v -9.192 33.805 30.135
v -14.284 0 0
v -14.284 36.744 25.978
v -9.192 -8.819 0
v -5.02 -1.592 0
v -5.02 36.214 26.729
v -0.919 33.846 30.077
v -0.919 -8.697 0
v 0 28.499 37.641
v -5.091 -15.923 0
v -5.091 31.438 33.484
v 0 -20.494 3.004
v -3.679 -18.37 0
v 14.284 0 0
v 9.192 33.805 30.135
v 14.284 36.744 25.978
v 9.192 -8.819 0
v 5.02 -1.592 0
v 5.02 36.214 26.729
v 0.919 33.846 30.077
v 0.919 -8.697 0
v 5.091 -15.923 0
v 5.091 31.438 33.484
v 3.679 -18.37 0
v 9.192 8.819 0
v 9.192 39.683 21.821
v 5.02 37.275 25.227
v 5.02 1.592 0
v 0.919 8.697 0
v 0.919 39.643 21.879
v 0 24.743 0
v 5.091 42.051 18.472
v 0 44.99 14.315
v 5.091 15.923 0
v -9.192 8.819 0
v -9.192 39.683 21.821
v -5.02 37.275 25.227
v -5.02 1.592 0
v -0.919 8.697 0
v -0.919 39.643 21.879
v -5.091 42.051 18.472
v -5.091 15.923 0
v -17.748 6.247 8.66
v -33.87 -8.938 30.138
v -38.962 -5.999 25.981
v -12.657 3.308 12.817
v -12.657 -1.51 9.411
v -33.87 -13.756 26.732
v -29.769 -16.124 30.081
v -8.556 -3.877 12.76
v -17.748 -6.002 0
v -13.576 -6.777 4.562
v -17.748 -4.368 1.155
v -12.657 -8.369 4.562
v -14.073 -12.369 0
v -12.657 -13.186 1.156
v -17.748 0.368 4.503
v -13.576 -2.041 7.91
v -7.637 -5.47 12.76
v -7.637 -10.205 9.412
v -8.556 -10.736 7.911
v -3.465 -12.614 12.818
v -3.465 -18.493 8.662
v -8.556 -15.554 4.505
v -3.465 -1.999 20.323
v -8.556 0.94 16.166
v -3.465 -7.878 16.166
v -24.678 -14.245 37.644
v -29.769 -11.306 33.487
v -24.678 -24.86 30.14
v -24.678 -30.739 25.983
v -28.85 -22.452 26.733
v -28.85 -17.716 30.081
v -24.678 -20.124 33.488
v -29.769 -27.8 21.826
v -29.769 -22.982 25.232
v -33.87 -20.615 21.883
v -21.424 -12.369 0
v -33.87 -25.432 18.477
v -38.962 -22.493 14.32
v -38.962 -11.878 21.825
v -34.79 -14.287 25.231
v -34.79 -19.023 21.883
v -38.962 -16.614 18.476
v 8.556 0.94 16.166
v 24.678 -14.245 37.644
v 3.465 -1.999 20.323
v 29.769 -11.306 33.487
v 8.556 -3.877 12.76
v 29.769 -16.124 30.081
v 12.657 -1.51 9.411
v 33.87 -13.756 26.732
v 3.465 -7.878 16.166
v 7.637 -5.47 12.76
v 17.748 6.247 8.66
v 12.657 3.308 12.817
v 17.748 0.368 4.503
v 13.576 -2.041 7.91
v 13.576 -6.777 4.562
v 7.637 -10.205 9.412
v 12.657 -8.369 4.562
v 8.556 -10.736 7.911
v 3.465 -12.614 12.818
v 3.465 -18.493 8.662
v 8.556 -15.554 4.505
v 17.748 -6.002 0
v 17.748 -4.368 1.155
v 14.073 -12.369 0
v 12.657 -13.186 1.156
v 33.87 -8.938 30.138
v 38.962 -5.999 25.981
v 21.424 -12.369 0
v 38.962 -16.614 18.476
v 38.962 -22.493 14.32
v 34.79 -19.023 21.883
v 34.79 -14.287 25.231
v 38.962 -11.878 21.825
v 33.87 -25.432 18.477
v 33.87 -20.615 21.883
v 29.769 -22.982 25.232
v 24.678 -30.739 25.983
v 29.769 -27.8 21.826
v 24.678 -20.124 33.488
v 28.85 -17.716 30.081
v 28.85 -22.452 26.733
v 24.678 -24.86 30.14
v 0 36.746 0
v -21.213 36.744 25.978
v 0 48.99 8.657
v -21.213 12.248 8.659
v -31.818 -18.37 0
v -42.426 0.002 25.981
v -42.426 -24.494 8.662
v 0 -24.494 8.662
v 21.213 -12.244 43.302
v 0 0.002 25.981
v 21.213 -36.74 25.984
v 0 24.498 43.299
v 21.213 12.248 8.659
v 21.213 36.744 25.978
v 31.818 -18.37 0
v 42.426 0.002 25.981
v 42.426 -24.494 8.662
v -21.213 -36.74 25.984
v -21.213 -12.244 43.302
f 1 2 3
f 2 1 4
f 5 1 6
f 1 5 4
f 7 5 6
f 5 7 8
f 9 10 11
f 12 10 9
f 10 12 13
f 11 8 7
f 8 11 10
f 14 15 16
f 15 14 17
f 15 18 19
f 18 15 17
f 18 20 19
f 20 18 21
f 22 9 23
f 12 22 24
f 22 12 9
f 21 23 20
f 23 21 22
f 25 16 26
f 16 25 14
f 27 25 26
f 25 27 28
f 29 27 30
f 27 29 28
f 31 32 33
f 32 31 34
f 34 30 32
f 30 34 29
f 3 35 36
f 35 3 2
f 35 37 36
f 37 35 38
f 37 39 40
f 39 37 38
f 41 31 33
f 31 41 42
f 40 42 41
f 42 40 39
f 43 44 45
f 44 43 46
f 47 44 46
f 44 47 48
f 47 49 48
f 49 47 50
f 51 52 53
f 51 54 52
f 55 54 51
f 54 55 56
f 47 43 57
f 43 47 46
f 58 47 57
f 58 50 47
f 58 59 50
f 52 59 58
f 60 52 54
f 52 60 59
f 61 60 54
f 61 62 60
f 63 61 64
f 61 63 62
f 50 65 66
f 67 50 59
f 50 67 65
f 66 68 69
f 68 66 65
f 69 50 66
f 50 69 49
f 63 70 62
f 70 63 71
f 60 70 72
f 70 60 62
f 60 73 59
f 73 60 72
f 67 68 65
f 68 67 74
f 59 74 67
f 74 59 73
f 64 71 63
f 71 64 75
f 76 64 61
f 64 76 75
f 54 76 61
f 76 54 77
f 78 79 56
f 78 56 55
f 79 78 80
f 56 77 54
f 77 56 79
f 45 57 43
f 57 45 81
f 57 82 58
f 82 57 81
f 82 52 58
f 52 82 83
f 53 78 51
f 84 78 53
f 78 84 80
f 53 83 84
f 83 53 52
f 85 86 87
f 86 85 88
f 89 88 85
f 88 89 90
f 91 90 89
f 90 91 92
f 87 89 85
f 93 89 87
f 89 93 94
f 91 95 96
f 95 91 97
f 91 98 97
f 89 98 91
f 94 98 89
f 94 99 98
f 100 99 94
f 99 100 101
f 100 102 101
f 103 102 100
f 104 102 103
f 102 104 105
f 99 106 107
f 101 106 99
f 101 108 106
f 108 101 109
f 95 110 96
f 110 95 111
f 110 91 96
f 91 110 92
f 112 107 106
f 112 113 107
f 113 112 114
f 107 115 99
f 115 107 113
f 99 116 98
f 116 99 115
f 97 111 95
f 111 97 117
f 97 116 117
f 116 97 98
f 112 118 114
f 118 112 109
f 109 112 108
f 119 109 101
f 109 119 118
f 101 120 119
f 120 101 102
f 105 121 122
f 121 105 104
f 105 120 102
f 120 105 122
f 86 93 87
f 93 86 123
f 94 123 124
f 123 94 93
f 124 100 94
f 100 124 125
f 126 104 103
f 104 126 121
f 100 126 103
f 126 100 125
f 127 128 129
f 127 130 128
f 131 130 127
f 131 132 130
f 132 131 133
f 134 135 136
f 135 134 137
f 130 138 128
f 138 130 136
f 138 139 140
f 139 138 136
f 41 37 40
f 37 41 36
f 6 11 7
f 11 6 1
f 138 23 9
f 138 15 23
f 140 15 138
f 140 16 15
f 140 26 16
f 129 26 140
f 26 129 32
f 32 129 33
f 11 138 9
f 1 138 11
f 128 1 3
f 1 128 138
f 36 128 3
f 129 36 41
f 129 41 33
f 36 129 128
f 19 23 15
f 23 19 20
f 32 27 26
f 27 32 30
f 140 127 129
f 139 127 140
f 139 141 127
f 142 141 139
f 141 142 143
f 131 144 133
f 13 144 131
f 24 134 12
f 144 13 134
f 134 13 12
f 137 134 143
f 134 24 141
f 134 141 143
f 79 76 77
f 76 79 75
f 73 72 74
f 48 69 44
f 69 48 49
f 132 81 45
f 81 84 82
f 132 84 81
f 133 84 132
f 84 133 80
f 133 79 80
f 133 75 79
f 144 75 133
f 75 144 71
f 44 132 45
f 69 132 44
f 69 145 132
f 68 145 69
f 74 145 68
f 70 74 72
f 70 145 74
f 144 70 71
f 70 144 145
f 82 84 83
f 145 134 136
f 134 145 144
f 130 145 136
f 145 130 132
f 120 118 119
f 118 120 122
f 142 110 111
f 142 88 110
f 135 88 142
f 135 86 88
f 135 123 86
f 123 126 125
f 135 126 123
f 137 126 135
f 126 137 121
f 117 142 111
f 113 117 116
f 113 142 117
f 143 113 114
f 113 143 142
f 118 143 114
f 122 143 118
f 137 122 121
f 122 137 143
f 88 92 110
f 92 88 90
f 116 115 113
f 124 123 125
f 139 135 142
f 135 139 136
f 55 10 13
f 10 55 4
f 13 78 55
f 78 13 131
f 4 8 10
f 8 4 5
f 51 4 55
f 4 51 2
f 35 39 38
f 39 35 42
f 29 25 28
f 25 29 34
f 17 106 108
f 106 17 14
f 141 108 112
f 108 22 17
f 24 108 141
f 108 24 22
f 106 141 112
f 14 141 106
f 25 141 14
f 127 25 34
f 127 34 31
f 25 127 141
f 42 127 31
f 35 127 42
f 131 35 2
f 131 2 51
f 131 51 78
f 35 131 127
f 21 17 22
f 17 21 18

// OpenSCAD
// Generated by SolidPython 1.1.3 on 2023-12-28 16:31:23


difference() {
	rotate(a = 35.2600000000, v = [1, 0, 0]) {
		rotate(a = -45, v = [0, 1, 0]) {
			difference() {
				union() {
					translate(v = [30.0000000000, 0, 0]) {
						cube(center = true, size = [30.0000000000, 30.0000000000, 30.0000000000]);
					}
					cube(center = true, size = [30.0000000000, 30.0000000000, 30.0000000000]);
					union() {
						translate(v = [0, 30.0000000000, 0]) {
							cube(center = true, size = [30.0000000000, 30.0000000000, 30.0000000000]);
						}
						cube(center = true, size = [30.0000000000, 30.0000000000, 30.0000000000]);
					}
					union() {
						translate(v = [0, 0, 30.0000000000]) {
							cube(center = true, size = [30.0000000000, 30.0000000000, 30.0000000000]);
						}
						cube(center = true, size = [30.0000000000, 30.0000000000, 30.0000000000]);
					}
				}
				union() {
					translate(v = [0, 0, 15]) {
						union() {
							polyhedron(convexity = 10, faces = [[0, 1, 5], [1, 6, 5], [1, 2, 6], [2, 7, 6], [2, 3, 7], [3, 8, 7], [3, 4, 8], [4, 9, 8], [4, 0, 9], [0, 5, 9], [4, 3, 2, 1, 0], [5, 6, 7, 8, 9]], points = [[-10.1000000000, 10.1000000000, 0.0000000000], [-10.1000000000, 2.9000000000, 0.0000000000], [-4.2000000000, 2.9000000000, 0.0000000000], [-4.2000000000, 0.0000000000, 0.0000000000], [0.0000000000, 0.0000000000, 0.0000000000], [-10.1000000000, 10.1000000000, 100.0000000000], [-10.1000000000, 2.9000000000, 100.0000000000], [-4.2000000000, 2.9000000000, 100.0000000000], [-4.2000000000, 0.0000000000, 100.0000000000], [0.0000000000, 0.0000000000, 100.0000000000]]);
							mirror(v = [0, 1]) {
								polyhedron(convexity = 10, faces = [[0, 1, 5], [1, 6, 5], [1, 2, 6], [2, 7, 6], [2, 3, 7], [3, 8, 7], [3, 4, 8], [4, 9, 8], [4, 0, 9], [0, 5, 9], [4, 3, 2, 1, 0], [5, 6, 7, 8, 9]], points = [[-10.1000000000, 10.1000000000, 0.0000000000], [-10.1000000000, 2.9000000000, 0.0000000000], [-4.2000000000, 2.9000000000, 0.0000000000], [-4.2000000000, 0.0000000000, 0.0000000000], [0.0000000000, 0.0000000000, 0.0000000000], [-10.1000000000, 10.1000000000, 100.0000000000], [-10.1000000000, 2.9000000000, 100.0000000000], [-4.2000000000, 2.9000000000, 100.0000000000], [-4.2000000000, 0.0000000000, 100.0000000000], [0.0000000000, 0.0000000000, 100.0000000000]]);
							}
							mirror(v = [1, 1]) {
								union() {
									polyhedron(convexity = 10, faces = [[0, 1, 5], [1, 6, 5], [1, 2, 6], [2, 7, 6], [2, 3, 7], [3, 8, 7], [3, 4, 8], [4, 9, 8], [4, 0, 9], [0, 5, 9], [4, 3, 2, 1, 0], [5, 6, 7, 8, 9]], points = [[-10.1000000000, 10.1000000000, 0.0000000000], [-10.1000000000, 2.9000000000, 0.0000000000], [-4.2000000000, 2.9000000000, 0.0000000000], [-4.2000000000, 0.0000000000, 0.0000000000], [0.0000000000, 0.0000000000, 0.0000000000], [-10.1000000000, 10.1000000000, 100.0000000000], [-10.1000000000, 2.9000000000, 100.0000000000], [-4.2000000000, 2.9000000000, 100.0000000000], [-4.2000000000, 0.0000000000, 100.0000000000], [0.0000000000, 0.0000000000, 100.0000000000]]);
									mirror(v = [0, 1]) {
										polyhedron(convexity = 10, faces = [[0, 1, 5], [1, 6, 5], [1, 2, 6], [2, 7, 6], [2, 3, 7], [3, 8, 7], [3, 4, 8], [4, 9, 8], [4, 0, 9], [0, 5, 9], [4, 3, 2, 1, 0], [5, 6, 7, 8, 9]], points = [[-10.1000000000, 10.1000000000, 0.0000000000], [-10.1000000000, 2.9000000000, 0.0000000000], [-4.2000000000, 2.9000000000, 0.0000000000], [-4.2000000000, 0.0000000000, 0.0000000000], [0.0000000000, 0.0000000000, 0.0000000000], [-10.1000000000, 10.1000000000, 100.0000000000], [-10.1000000000, 2.9000000000, 100.0000000000], [-4.2000000000, 2.9000000000, 100.0000000000], [-4.2000000000, 0.0000000000, 100.0000000000], [0.0000000000, 0.0000000000, 100.0000000000]]);
									}
								}
							}
							mirror(v = [1, -1]) {
								union() {
									polyhedron(convexity = 10, faces = [[0, 1, 5], [1, 6, 5], [1, 2, 6], [2, 7, 6], [2, 3, 7], [3, 8, 7], [3, 4, 8], [4, 9, 8], [4, 0, 9], [0, 5, 9], [4, 3, 2, 1, 0], [5, 6, 7, 8, 9]], points = [[-10.1000000000, 10.1000000000, 0.0000000000], [-10.1000000000, 2.9000000000, 0.0000000000], [-4.2000000000, 2.9000000000, 0.0000000000], [-4.2000000000, 0.0000000000, 0.0000000000], [0.0000000000, 0.0000000000, 0.0000000000], [-10.1000000000, 10.1000000000, 100.0000000000], [-10.1000000000, 2.9000000000, 100.0000000000], [-4.2000000000, 2.9000000000, 100.0000000000], [-4.2000000000, 0.0000000000, 100.0000000000], [0.0000000000, 0.0000000000, 100.0000000000]]);
									mirror(v = [0, 1]) {
										polyhedron(convexity = 10, faces = [[0, 1, 5], [1, 6, 5], [1, 2, 6], [2, 7, 6], [2, 3, 7], [3, 8, 7], [3, 4, 8], [4, 9, 8], [4, 0, 9], [0, 5, 9], [4, 3, 2, 1, 0], [5, 6, 7, 8, 9]], points = [[-10.1000000000, 10.1000000000, 0.0000000000], [-10.1000000000, 2.9000000000, 0.0000000000], [-4.2000000000, 2.9000000000, 0.0000000000], [-4.2000000000, 0.0000000000, 0.0000000000], [0.0000000000, 0.0000000000, 0.0000000000], [-10.1000000000, 10.1000000000, 100.0000000000], [-10.1000000000, 2.9000000000, 100.0000000000], [-4.2000000000, 2.9000000000, 100.0000000000], [-4.2000000000, 0.0000000000, 100.0000000000], [0.0000000000, 0.0000000000, 100.0000000000]]);
									}
									mirror(v = [1, 1]) {
										union() {
											polyhedron(convexity = 10, faces = [[0, 1, 5], [1, 6, 5], [1, 2, 6], [2, 7, 6], [2, 3, 7], [3, 8, 7], [3, 4, 8], [4, 9, 8], [4, 0, 9], [0, 5, 9], [4, 3, 2, 1, 0], [5, 6, 7, 8, 9]], points = [[-10.1000000000, 10.1000000000, 0.0000000000], [-10.1000000000, 2.9000000000, 0.0000000000], [-4.2000000000, 2.9000000000, 0.0000000000], [-4.2000000000, 0.0000000000, 0.0000000000], [0.0000000000, 0.0000000000, 0.0000000000], [-10.1000000000, 10.1000000000, 100.0000000000], [-10.1000000000, 2.9000000000, 100.0000000000], [-4.2000000000, 2.9000000000, 100.0000000000], [-4.2000000000, 0.0000000000, 100.0000000000], [0.0000000000, 0.0000000000, 100.0000000000]]);
											mirror(v = [0, 1]) {
												polyhedron(convexity = 10, faces = [[0, 1, 5], [1, 6, 5], [1, 2, 6], [2, 7, 6], [2, 3, 7], [3, 8, 7], [3, 4, 8], [4, 9, 8], [4, 0, 9], [0, 5, 9], [4, 3, 2, 1, 0], [5, 6, 7, 8, 9]], points = [[-10.1000000000, 10.1000000000, 0.0000000000], [-10.1000000000, 2.9000000000, 0.0000000000], [-4.2000000000, 2.9000000000, 0.0000000000], [-4.2000000000, 0.0000000000, 0.0000000000], [0.0000000000, 0.0000000000, 0.0000000000], [-10.1000000000, 10.1000000000, 100.0000000000], [-10.1000000000, 2.9000000000, 100.0000000000], [-4.2000000000, 2.9000000000, 100.0000000000], [-4.2000000000, 0.0000000000, 100.0000000000], [0.0000000000, 0.0000000000, 100.0000000000]]);
											}
										}
									}
								}
							}
						}
					}
					translate(v = [15, 0, 0]) {
						rotate(a = 90, v = [0, 1, 0]) {
							union() {
								polyhedron(convexity = 10, faces = [[0, 1, 5], [1, 6, 5], [1, 2, 6], [2, 7, 6], [2, 3, 7], [3, 8, 7], [3, 4, 8], [4, 9, 8], [4, 0, 9], [0, 5, 9], [4, 3, 2, 1, 0], [5, 6, 7, 8, 9]], points = [[-10.1000000000, 10.1000000000, 0.0000000000], [-10.1000000000, 2.9000000000, 0.0000000000], [-4.2000000000, 2.9000000000, 0.0000000000], [-4.2000000000, 0.0000000000, 0.0000000000], [0.0000000000, 0.0000000000, 0.0000000000], [-10.1000000000, 10.1000000000, 100.0000000000], [-10.1000000000, 2.9000000000, 100.0000000000], [-4.2000000000, 2.9000000000, 100.0000000000], [-4.2000000000, 0.0000000000, 100.0000000000], [0.0000000000, 0.0000000000, 100.0000000000]]);
								mirror(v = [0, 1]) {
									polyhedron(convexity = 10, faces = [[0, 1, 5], [1, 6, 5], [1, 2, 6], [2, 7, 6], [2, 3, 7], [3, 8, 7], [3, 4, 8], [4, 9, 8], [4, 0, 9], [0, 5, 9], [4, 3, 2, 1, 0], [5, 6, 7, 8, 9]], points = [[-10.1000000000, 10.1000000000, 0.0000000000], [-10.1000000000, 2.9000000000, 0.0000000000], [-4.2000000000, 2.9000000000, 0.0000000000], [-4.2000000000, 0.0000000000, 0.0000000000], [0.0000000000, 0.0000000000, 0.0000000000], [-10.1000000000, 10.1000000000, 100.0000000000], [-10.1000000000, 2.9000000000, 100.0000000000], [-4.2000000000, 2.9000000000, 100.0000000000], [-4.2000000000, 0.0000000000, 100.0000000000], [0.0000000000, 0.0000000000, 100.0000000000]]);
								}
								mirror(v = [1, 1]) {
									union() {
										polyhedron(convexity = 10, faces = [[0, 1, 5], [1, 6, 5], [1, 2, 6], [2, 7, 6], [2, 3, 7], [3, 8, 7], [3, 4, 8], [4, 9, 8], [4, 0, 9], [0, 5, 9], [4, 3, 2, 1, 0], [5, 6, 7, 8, 9]], points = [[-10.1000000000, 10.1000000000, 0.0000000000], [-10.1000000000, 2.9000000000, 0.0000000000], [-4.2000000000, 2.9000000000, 0.0000000000], [-4.2000000000, 0.0000000000, 0.0000000000], [0.0000000000, 0.0000000000, 0.0000000000], [-10.1000000000, 10.1000000000, 100.0000000000], [-10.1000000000, 2.9000000000, 100.0000000000], [-4.2000000000, 2.9000000000, 100.0000000000], [-4.2000000000, 0.0000000000, 100.0000000000], [0.0000000000, 0.0000000000, 100.0000000000]]);
										mirror(v = [0, 1]) {
											polyhedron(convexity = 10, faces = [[0, 1, 5], [1, 6, 5], [1, 2, 6], [2, 7, 6], [2, 3, 7], [3, 8, 7], [3, 4, 8], [4, 9, 8], [4, 0, 9], [0, 5, 9], [4, 3, 2, 1, 0], [5, 6, 7, 8, 9]], points = [[-10.1000000000, 10.1000000000, 0.0000000000], [-10.1000000000, 2.9000000000, 0.0000000000], [-4.2000000000, 2.9000000000, 0.0000000000], [-4.2000000000, 0.0000000000, 0.0000000000], [0.0000000000, 0.0000000000, 0.0000000000], [-10.1000000000, 10.1000000000, 100.0000000000], [-10.1000000000, 2.9000000000, 100.0000000000], [-4.2000000000, 2.9000000000, 100.0000000000], [-4.2000000000, 0.0000000000, 100.0000000000], [0.0000000000, 0.0000000000, 100.0000000000]]);
										}
									}
								}
								mirror(v = [1, -1]) {
									union() {
										polyhedron(convexity = 10, faces = [[0, 1, 5], [1, 6, 5], [1, 2, 6], [2, 7, 6], [2, 3, 7], [3, 8, 7], [3, 4, 8], [4, 9, 8], [4, 0, 9], [0, 5, 9], [4, 3, 2, 1, 0], [5, 6, 7, 8, 9]], points = [[-10.1000000000, 10.1000000000, 0.0000000000], [-10.1000000000, 2.9000000000, 0.0000000000], [-4.2000000000, 2.9000000000, 0.0000000000], [-4.2000000000, 0.0000000000, 0.0000000000], [0.0000000000, 0.0000000000, 0.0000000000], [-10.1000000000, 10.1000000000, 100.0000000000], [-10.1000000000, 2.9000000000, 100.0000000000], [-4.2000000000, 2.9000000000, 100.0000000000], [-4.2000000000, 0.0000000000, 100.0000000000], [0.0000000000, 0.0000000000, 100.0000000000]]);
										mirror(v = [0, 1]) {
											polyhedron(convexity = 10, faces = [[0, 1, 5], [1, 6, 5], [1, 2, 6], [2, 7, 6], [2, 3, 7], [3, 8, 7], [3, 4, 8], [4, 9, 8], [4, 0, 9], [0, 5, 9], [4, 3, 2, 1, 0], [5, 6, 7, 8, 9]], points = [[-10.1000000000, 10.1000000000, 0.0000000000], [-10.1000000000, 2.9000000000, 0.0000000000], [-4.2000000000, 2.9000000000, 0.0000000000], [-4.2000000000, 0.0000000000, 0.0000000000], [0.0000000000, 0.0000000000, 0.0000000000], [-10.1000000000, 10.1000000000, 100.0000000000], [-10.1000000000, 2.9000000000, 100.0000000000], [-4.2000000000, 2.9000000000, 100.0000000000], [-4.2000000000, 0.0000000000, 100.0000000000], [0.0000000000, 0.0000000000, 100.0000000000]]);
										}
										mirror(v = [1, 1]) {
											union() {
												polyhedron(convexity = 10, faces = [[0, 1, 5], [1, 6, 5], [1, 2, 6], [2, 7, 6], [2, 3, 7], [3, 8, 7], [3, 4, 8], [4, 9, 8], [4, 0, 9], [0, 5, 9], [4, 3, 2, 1, 0], [5, 6, 7, 8, 9]], points = [[-10.1000000000, 10.1000000000, 0.0000000000], [-10.1000000000, 2.9000000000, 0.0000000000], [-4.2000000000, 2.9000000000, 0.0000000000], [-4.2000000000, 0.0000000000, 0.0000000000], [0.0000000000, 0.0000000000, 0.0000000000], [-10.1000000000, 10.1000000000, 100.0000000000], [-10.1000000000, 2.9000000000, 100.0000000000], [-4.2000000000, 2.9000000000, 100.0000000000], [-4.2000000000, 0.0000000000, 100.0000000000], [0.0000000000, 0.0000000000, 100.0000000000]]);
												mirror(v = [0, 1]) {
													polyhedron(convexity = 10, faces = [[0, 1, 5], [1, 6, 5], [1, 2, 6], [2, 7, 6], [2, 3, 7], [3, 8, 7], [3, 4, 8], [4, 9, 8], [4, 0, 9], [0, 5, 9], [4, 3, 2, 1, 0], [5, 6, 7, 8, 9]], points = [[-10.1000000000, 10.1000000000, 0.0000000000], [-10.1000000000, 2.9000000000, 0.0000000000], [-4.2000000000, 2.9000000000, 0.0000000000], [-4.2000000000, 0.0000000000, 0.0000000000], [0.0000000000, 0.0000000000, 0.0000000000], [-10.1000000000, 10.1000000000, 100.0000000000], [-10.1000000000, 2.9000000000, 100.0000000000], [-4.2000000000, 2.9000000000, 100.0000000000], [-4.2000000000, 0.0000000000, 100.0000000000], [0.0000000000, 0.0000000000, 100.0000000000]]);
												}
											}
										}
									}
								}
							}
						}
					}
					translate(v = [0, 50, 0]) {
						rotate(a = 90, v = [1, 0, 0]) {
							union() {
								polyhedron(convexity = 10, faces = [[0, 1, 5], [1, 6, 5], [1, 2, 6], [2, 7, 6], [2, 3, 7], [3, 8, 7], [3, 4, 8], [4, 9, 8], [4, 0, 9], [0, 5, 9], [4, 3, 2, 1, 0], [5, 6, 7, 8, 9]], points = [[-10.1000000000, 10.1000000000, 0.0000000000], [-10.1000000000, 2.9000000000, 0.0000000000], [-4.2000000000, 2.9000000000, 0.0000000000], [-4.2000000000, 0.0000000000, 0.0000000000], [0.0000000000, 0.0000000000, 0.0000000000], [-10.1000000000, 10.1000000000, 100.0000000000], [-10.1000000000, 2.9000000000, 100.0000000000], [-4.2000000000, 2.9000000000, 100.0000000000], [-4.2000000000, 0.0000000000, 100.0000000000], [0.0000000000, 0.0000000000, 100.0000000000]]);
								mirror(v = [0, 1]) {
									polyhedron(convexity = 10, faces = [[0, 1, 5], [1, 6, 5], [1, 2, 6], [2, 7, 6], [2, 3, 7], [3, 8, 7], [3, 4, 8], [4, 9, 8], [4, 0, 9], [0, 5, 9], [4, 3, 2, 1, 0], [5, 6, 7, 8, 9]], points = [[-10.1000000000, 10.1000000000, 0.0000000000], [-10.1000000000, 2.9000000000, 0.0000000000], [-4.2000000000, 2.9000000000, 0.0000000000], [-4.2000000000, 0.0000000000, 0.0000000000], [0.0000000000, 0.0000000000, 0.0000000000], [-10.1000000000, 10.1000000000, 100.0000000000], [-10.1000000000, 2.9000000000, 100.0000000000], [-4.2000000000, 2.9000000000, 100.0000000000], [-4.2000000000, 0.0000000000, 100.0000000000], [0.0000000000, 0.0000000000, 100.0000000000]]);
								}
								mirror(v = [1, 1]) {
									union() {
										polyhedron(convexity = 10, faces = [[0, 1, 5], [1, 6, 5], [1, 2, 6], [2, 7, 6], [2, 3, 7], [3, 8, 7], [3, 4, 8], [4, 9, 8], [4, 0, 9], [0, 5, 9], [4, 3, 2, 1, 0], [5, 6, 7, 8, 9]], points = [[-10.1000000000, 10.1000000000, 0.0000000000], [-10.1000000000, 2.9000000000, 0.0000000000], [-4.2000000000, 2.9000000000, 0.0000000000], [-4.2000000000, 0.0000000000, 0.0000000000], [0.0000000000, 0.0000000000, 0.0000000000], [-10.1000000000, 10.1000000000, 100.0000000000], [-10.1000000000, 2.9000000000, 100.0000000000], [-4.2000000000, 2.9000000000, 100.0000000000], [-4.2000000000, 0.0000000000, 100.0000000000], [0.0000000000, 0.0000000000, 100.0000000000]]);
										mirror(v = [0, 1]) {
											polyhedron(convexity = 10, faces = [[0, 1, 5], [1, 6, 5], [1, 2, 6], [2, 7, 6], [2, 3, 7], [3, 8, 7], [3, 4, 8], [4, 9, 8], [4, 0, 9], [0, 5, 9], [4, 3, 2, 1, 0], [5, 6, 7, 8, 9]], points = [[-10.1000000000, 10.1000000000, 0.0000000000], [-10.1000000000, 2.9000000000, 0.0000000000], [-4.2000000000, 2.9000000000, 0.0000000000], [-4.2000000000, 0.0000000000, 0.0000000000], [0.0000000000, 0.0000000000, 0.0000000000], [-10.1000000000, 10.1000000000, 100.0000000000], [-10.1000000000, 2.9000000000, 100.0000000000], [-4.2000000000, 2.9000000000, 100.0000000000], [-4.2000000000, 0.0000000000, 100.0000000000], [0.0000000000, 0.0000000000, 100.0000000000]]);
										}
									}
								}
								mirror(v = [1, -1]) {
									union() {
										polyhedron(convexity = 10, faces = [[0, 1, 5], [1, 6, 5], [1, 2, 6], [2, 7, 6], [2, 3, 7], [3, 8, 7], [3, 4, 8], [4, 9, 8], [4, 0, 9], [0, 5, 9], [4, 3, 2, 1, 0], [5, 6, 7, 8, 9]], points = [[-10.1000000000, 10.1000000000, 0.0000000000], [-10.1000000000, 2.9000000000, 0.0000000000], [-4.2000000000, 2.9000000000, 0.0000000000], [-4.2000000000, 0.0000000000, 0.0000000000], [0.0000000000, 0.0000000000, 0.0000000000], [-10.1000000000, 10.1000000000, 100.0000000000], [-10.1000000000, 2.9000000000, 100.0000000000], [-4.2000000000, 2.9000000000, 100.0000000000], [-4.2000000000, 0.0000000000, 100.0000000000], [0.0000000000, 0.0000000000, 100.0000000000]]);
										mirror(v = [0, 1]) {
											polyhedron(convexity = 10, faces = [[0, 1, 5], [1, 6, 5], [1, 2, 6], [2, 7, 6], [2, 3, 7], [3, 8, 7], [3, 4, 8], [4, 9, 8], [4, 0, 9], [0, 5, 9], [4, 3, 2, 1, 0], [5, 6, 7, 8, 9]], points = [[-10.1000000000, 10.1000000000, 0.0000000000], [-10.1000000000, 2.9000000000, 0.0000000000], [-4.2000000000, 2.9000000000, 0.0000000000], [-4.2000000000, 0.0000000000, 0.0000000000], [0.0000000000, 0.0000000000, 0.0000000000], [-10.1000000000, 10.1000000000, 100.0000000000], [-10.1000000000, 2.9000000000, 100.0000000000], [-4.2000000000, 2.9000000000, 100.0000000000], [-4.2000000000, 0.0000000000, 100.0000000000], [0.0000000000, 0.0000000000, 100.0000000000]]);
										}
										mirror(v = [1, 1]) {
											union() {
												polyhedron(convexity = 10, faces = [[0, 1, 5], [1, 6, 5], [1, 2, 6], [2, 7, 6], [2, 3, 7], [3, 8, 7], [3, 4, 8], [4, 9, 8], [4, 0, 9], [0, 5, 9], [4, 3, 2, 1, 0], [5, 6, 7, 8, 9]], points = [[-10.1000000000, 10.1000000000, 0.0000000000], [-10.1000000000, 2.9000000000, 0.0000000000], [-4.2000000000, 2.9000000000, 0.0000000000], [-4.2000000000, 0.0000000000, 0.0000000000], [0.0000000000, 0.0000000000, 0.0000000000], [-10.1000000000, 10.1000000000, 100.0000000000], [-10.1000000000, 2.9000000000, 100.0000000000], [-4.2000000000, 2.9000000000, 100.0000000000], [-4.2000000000, 0.0000000000, 100.0000000000], [0.0000000000, 0.0000000000, 100.0000000000]]);
												mirror(v = [0, 1]) {
													polyhedron(convexity = 10, faces = [[0, 1, 5], [1, 6, 5], [1, 2, 6], [2, 7, 6], [2, 3, 7], [3, 8, 7], [3, 4, 8], [4, 9, 8], [4, 0, 9], [0, 5, 9], [4, 3, 2, 1, 0], [5, 6, 7, 8, 9]], points = [[-10.1000000000, 10.1000000000, 0.0000000000], [-10.1000000000, 2.9000000000, 0.0000000000], [-4.2000000000, 2.9000000000, 0.0000000000], [-4.2000000000, 0.0000000000, 0.0000000000], [0.0000000000, 0.0000000000, 0.0000000000], [-10.1000000000, 10.1000000000, 100.0000000000], [-10.1000000000, 2.9000000000, 100.0000000000], [-4.2000000000, 2.9000000000, 100.0000000000], [-4.2000000000, 0.0000000000, 100.0000000000], [0.0000000000, 0.0000000000, 100.0000000000]]);
												}
											}
										}
									}
								}
							}
						}
					}
				}
			}
		}
	}
	translate(v = [0, 0, -150]) {
		cube(center = true, size = [300, 300, 300]);
	}
}
/***********************************************
*********      SolidPython code:      **********
************************************************
 
#! /usr/bin/env python3
from solid.objects import *
from solid.solidpython import *
import sys
from math import cos, radians, sin, pi, tau
from pathlib import Path

from euclid3 import Point2, Point3, Vector3

from solid import *
from solid.utils import *

from typing import Set, Sequence, List, Callable, Optional, Union, Iterable, Tuple

# ============
# = GEOMETRY =
# ============

tube_length = 100
shell_thickness = 5
e_thickness = 20

def e_profile() -> List[Point3]:
	profile_pts = []

	tolerance = .1;
	inner_corner = e_thickness/2 + tolerance;
	outer_corner = inner_corner + shell_thickness
	nub_length = 6 - tolerance;
	rail_thickness = .5;
	gap_size = 3 - tolerance;

	# outer shell
	# profile_pts = [[inner_corner,inner_corner,0],[inner_corner,gap_size,0],
    #                  [inner_corner - nub_length, gap_size,0],[inner_corner - nub_length, 0,0],
    #                  [outer_corner,0,0],[outer_corner,outer_corner,0]]

	profile_pts = [[inner_corner,inner_corner,0],[inner_corner,gap_size,0],[inner_corner - nub_length, gap_size,0],
					[inner_corner - nub_length,0,0],[0,0,0]]

	return profile_pts

def extrude_and_mirror_profile() -> OpenSCADObject:
	path = [[0,0,0],[0,0,tube_length]]
	shape = e_profile()
	extruded = extrude_along_path( shape_pts=shape, path_pts=path)
	extruded += mirror(v=(0,1))(extruded)
	extruded += mirror(v=(1,1))(extruded)
	extruded += mirror(v=(1,-1))(extruded)
	return extruded

def make_three_e(extrusion_profile) -> OpenSCADObject:
	three_extrusions = translate([0,0,10+shell_thickness])(extrusion_profile)
	three_extrusions += translate([10+shell_thickness,0,0])(rotate(a=90, v=FORWARD_VEC)(extrusion_profile))
	three_extrusions += translate(([0,50,0]))(rotate(a=90, v=RIGHT_VEC)(extrusion_profile))
	return three_extrusions

def make_shell() -> OpenSCADObject:
	total = (e_thickness/2 + shell_thickness)*2
	base_cube = cube([total, total, total], center=True)
	cube_shell = translate([total,0,0])(base_cube) + base_cube
	cube_shell += translate([0,total,0])(base_cube) + base_cube
	cube_shell += translate([0,0,total])(base_cube) + base_cube	
	return cube_shell

def bisect_floor(input) -> OpenSCADObject:
	size = 300
	floor = translate([0,0,-150])(cube([300,300,300],center = True))
	return input - floor
# ===============
# = ENTRY POINT =
# ===============
if __name__ == "__main__":
	out_dir = sys.argv[1] if len(sys.argv) > 1 else Path(__file__).parent

	extrusion_profile = extrude_and_mirror_profile()
	shell = make_shell()
#	a = shell - make_three_e(extrusion_profile())
	a = (shell - make_three_e(extrusion_profile()))
#	a = make_three_e(extrusion_profile())
	a = rotate(a = -45, v=(0,1,0))(a)
	a = rotate(a = 35.26, v=(1,0,0))(a)
	a = bisect_floor(a)
	file_out = scad_render_to_file(a,  out_dir=out_dir, include_orig_code=True)
	print(f"{__file__}: SCAD file written to: \n{file_out}")
 
 
************************************************/
